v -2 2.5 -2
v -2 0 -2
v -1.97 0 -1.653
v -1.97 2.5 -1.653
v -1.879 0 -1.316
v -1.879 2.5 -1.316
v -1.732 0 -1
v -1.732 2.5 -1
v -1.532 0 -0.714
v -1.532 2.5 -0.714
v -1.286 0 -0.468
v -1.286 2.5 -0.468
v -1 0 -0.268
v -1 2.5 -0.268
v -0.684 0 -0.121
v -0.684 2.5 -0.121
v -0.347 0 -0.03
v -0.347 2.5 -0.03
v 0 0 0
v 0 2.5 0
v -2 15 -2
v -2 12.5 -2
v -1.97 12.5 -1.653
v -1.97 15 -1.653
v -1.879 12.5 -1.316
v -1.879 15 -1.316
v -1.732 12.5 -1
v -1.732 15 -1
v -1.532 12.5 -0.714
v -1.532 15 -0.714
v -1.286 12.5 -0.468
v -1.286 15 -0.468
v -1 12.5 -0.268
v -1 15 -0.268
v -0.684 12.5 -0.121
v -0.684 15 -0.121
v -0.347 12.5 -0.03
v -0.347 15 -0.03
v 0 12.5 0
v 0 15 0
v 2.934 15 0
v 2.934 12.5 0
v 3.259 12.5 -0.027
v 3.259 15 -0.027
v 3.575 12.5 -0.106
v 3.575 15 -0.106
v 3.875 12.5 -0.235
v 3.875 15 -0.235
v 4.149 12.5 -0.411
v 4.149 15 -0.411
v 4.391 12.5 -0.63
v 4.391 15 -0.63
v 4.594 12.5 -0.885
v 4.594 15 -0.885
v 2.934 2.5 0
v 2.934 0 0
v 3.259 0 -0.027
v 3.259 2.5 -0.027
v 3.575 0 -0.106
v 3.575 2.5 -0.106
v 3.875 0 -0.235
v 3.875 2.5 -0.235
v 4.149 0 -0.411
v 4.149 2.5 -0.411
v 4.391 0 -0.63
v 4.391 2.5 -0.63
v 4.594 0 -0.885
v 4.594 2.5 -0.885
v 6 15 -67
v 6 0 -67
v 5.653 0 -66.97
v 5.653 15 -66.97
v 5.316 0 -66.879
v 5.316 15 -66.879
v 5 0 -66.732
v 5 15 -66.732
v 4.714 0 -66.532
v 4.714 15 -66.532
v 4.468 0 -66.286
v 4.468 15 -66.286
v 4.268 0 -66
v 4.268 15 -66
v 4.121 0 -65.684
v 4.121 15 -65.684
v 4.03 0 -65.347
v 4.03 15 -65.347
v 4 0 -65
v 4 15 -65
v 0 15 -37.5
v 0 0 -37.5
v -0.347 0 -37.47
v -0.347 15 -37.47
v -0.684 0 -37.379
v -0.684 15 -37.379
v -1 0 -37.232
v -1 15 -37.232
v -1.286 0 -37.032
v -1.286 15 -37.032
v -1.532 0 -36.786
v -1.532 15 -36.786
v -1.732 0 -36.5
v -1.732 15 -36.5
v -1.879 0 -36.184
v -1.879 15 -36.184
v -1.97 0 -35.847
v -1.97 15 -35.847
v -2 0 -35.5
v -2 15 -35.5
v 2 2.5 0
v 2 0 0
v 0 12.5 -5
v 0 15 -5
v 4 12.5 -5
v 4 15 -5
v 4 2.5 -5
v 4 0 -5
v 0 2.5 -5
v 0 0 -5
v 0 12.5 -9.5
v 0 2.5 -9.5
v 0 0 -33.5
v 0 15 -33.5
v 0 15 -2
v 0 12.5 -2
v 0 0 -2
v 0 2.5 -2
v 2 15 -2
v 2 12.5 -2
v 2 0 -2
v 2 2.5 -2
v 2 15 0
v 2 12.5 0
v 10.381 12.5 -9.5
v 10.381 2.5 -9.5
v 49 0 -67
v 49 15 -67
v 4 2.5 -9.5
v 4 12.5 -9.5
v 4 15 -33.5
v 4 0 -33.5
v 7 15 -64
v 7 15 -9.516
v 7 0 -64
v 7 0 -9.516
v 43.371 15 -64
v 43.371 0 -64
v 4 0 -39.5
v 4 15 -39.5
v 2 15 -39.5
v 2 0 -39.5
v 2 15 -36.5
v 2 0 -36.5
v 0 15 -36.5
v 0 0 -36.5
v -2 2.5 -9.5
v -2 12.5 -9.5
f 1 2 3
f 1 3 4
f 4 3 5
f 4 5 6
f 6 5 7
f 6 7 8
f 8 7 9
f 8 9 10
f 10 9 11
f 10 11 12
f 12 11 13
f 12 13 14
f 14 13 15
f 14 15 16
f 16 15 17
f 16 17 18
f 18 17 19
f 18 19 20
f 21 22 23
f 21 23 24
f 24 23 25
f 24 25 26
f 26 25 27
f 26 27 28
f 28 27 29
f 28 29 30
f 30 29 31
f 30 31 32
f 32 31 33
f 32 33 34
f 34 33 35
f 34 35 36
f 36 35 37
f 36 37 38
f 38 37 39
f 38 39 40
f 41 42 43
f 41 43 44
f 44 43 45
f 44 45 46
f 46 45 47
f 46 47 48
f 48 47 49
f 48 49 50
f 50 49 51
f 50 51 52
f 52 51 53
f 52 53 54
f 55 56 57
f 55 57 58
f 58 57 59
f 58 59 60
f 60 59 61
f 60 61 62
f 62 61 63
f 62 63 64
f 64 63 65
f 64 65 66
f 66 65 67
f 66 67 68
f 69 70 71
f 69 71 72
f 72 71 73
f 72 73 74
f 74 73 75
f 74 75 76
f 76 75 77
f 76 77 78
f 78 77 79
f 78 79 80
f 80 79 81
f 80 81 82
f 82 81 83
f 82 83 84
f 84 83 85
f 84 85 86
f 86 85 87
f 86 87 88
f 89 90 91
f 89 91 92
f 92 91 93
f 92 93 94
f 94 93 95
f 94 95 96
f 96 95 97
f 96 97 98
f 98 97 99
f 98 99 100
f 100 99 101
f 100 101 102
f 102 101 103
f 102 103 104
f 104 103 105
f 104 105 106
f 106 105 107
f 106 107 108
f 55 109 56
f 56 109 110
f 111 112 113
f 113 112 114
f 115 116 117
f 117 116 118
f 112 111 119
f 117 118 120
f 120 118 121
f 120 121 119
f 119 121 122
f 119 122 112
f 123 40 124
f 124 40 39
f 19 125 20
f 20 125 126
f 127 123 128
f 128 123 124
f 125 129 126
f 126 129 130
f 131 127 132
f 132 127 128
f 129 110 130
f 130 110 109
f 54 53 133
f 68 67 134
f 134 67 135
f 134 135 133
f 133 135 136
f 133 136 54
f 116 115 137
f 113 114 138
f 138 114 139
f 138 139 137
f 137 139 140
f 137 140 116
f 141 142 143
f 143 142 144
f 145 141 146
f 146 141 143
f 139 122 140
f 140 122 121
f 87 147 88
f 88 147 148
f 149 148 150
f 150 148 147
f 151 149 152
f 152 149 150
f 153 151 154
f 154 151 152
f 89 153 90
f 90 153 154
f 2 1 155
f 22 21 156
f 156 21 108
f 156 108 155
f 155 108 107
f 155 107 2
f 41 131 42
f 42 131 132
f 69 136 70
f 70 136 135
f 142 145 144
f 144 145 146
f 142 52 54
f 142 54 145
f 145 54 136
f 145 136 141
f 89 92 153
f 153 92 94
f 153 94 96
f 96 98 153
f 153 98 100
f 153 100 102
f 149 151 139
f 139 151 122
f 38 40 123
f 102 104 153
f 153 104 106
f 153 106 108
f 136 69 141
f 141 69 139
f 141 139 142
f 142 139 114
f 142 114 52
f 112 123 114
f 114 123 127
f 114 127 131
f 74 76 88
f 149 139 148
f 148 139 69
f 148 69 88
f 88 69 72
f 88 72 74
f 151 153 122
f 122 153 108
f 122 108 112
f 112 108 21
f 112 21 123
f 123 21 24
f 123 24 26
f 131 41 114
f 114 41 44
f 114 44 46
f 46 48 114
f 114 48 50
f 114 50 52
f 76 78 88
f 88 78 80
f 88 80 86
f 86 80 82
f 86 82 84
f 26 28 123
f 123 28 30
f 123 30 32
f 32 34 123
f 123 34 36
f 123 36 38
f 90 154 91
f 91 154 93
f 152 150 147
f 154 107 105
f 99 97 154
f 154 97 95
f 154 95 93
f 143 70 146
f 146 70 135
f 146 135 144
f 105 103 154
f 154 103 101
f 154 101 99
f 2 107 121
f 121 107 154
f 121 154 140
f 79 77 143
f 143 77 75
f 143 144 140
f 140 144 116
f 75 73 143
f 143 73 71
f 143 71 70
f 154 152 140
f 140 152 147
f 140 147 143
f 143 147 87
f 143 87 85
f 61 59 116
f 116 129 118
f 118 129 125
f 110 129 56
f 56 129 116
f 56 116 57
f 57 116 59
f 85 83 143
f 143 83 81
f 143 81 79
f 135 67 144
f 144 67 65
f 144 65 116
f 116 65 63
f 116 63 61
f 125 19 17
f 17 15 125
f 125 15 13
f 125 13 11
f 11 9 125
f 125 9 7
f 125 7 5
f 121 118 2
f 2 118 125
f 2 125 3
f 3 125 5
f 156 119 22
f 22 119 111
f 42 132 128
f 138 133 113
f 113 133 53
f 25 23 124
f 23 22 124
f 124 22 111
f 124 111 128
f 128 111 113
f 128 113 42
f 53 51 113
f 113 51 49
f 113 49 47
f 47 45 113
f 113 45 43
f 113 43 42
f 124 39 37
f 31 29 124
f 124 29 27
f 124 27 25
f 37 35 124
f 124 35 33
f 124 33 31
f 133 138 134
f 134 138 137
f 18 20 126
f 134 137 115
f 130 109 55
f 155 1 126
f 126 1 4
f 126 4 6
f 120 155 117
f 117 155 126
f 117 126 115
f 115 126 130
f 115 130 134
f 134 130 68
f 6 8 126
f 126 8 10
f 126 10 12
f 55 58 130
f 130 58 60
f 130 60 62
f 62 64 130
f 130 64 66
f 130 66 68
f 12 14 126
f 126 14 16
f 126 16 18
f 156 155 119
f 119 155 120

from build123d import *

# Parameters (mm, degrees)
SKETCH2_W               = 4
SKETCH2_H               = 28.5
BOSS_EXTRUDE1_DEPTH     = 15
CUT_EXTRUDE1_DEPTH      = 86.527773267
CUT_EXTRUDE1_DEPTH_BACK = 15
SKETCH3_W               = 9.5
SKETCH3_H               = 10
FILLET1_R               = 2
FILLET2_R               = 2
FILLET3_R               = 2
FILLET4_R               = 2
FILLET5_R               = 2
FILLET6_R               = 2


with BuildPart() as part:
    # Sketch2 → Boss-Extrude1 (new body)
    with BuildSketch(Plane(origin=(0, 0, 0), x_dir=(1, 0, 0), z_dir=(0, 1, 0))):
        Polygon((0, 0), (0, 2), (2, 2), (2, 0), (4, 0), (49, 67), (4, 67), (4, 39.5), (2, 39.5), (2, 36.5), (0, 36.5), (0, 37.5), (-2, 37.5), (-2, 0), align=None)
        with Locations((2, 19.25)):
            Rectangle(SKETCH2_W, SKETCH2_H, mode=Mode.SUBTRACT)
        Polygon((7, 64), (43.371222906, 64), (7, 9.516238481), align=None, mode=Mode.SUBTRACT)
    extrude(amount=BOSS_EXTRUDE1_DEPTH)

    # Sketch3 → Cut-Extrude1 (cut, two sides: drawn at the far end of the back side and taken through both)
    with BuildSketch(Plane.ZY.offset(2).offset(-CUT_EXTRUDE1_DEPTH_BACK)):
        with Locations((-4.75, 7.5)):
            Rectangle(SKETCH3_W, SKETCH3_H)
    extrude(amount=CUT_EXTRUDE1_DEPTH + CUT_EXTRUDE1_DEPTH_BACK, mode=Mode.SUBTRACT)

    # Fillet1
    fillet1_edges = [part.edges().sort_by_distance(p)[0] for p in [
        (-2, 7.5, -37.5),
    ]]
    fillet(fillet1_edges, radius=FILLET1_R - 0.0001)  # a hair under: the kernel refuses the full size

    # Fillet2
    fillet2_edges = [part.edges().sort_by_distance(p)[0] for p in [
        (4, 7.5, -67),
    ]]
    fillet(fillet2_edges, radius=FILLET2_R)

    # Fillet3
    fillet3_edges = [part.edges().sort_by_distance(p)[0] for p in [
        (4, 1.25, 0),
    ]]
    fillet(fillet3_edges, radius=FILLET3_R)

    # Fillet4
    fillet4_edges = [part.edges().sort_by_distance(p)[0] for p in [
        (4, 13.75, 0),
    ]]
    fillet(fillet4_edges, radius=FILLET4_R)

    # Fillet5
    fillet5_edges = [part.edges().sort_by_distance(p)[0] for p in [
        (-2, 13.75, 0),
    ]]
    fillet(fillet5_edges, radius=FILLET5_R - 0.0001)  # a hair under: the kernel refuses the full size

    # Fillet6
    fillet6_edges = [part.edges().sort_by_distance(p)[0] for p in [
        (-2, 1.25, 0),
    ]]
    fillet(fillet6_edges, radius=FILLET6_R - 0.0001)  # a hair under: the kernel refuses the full size


solid = part.part
